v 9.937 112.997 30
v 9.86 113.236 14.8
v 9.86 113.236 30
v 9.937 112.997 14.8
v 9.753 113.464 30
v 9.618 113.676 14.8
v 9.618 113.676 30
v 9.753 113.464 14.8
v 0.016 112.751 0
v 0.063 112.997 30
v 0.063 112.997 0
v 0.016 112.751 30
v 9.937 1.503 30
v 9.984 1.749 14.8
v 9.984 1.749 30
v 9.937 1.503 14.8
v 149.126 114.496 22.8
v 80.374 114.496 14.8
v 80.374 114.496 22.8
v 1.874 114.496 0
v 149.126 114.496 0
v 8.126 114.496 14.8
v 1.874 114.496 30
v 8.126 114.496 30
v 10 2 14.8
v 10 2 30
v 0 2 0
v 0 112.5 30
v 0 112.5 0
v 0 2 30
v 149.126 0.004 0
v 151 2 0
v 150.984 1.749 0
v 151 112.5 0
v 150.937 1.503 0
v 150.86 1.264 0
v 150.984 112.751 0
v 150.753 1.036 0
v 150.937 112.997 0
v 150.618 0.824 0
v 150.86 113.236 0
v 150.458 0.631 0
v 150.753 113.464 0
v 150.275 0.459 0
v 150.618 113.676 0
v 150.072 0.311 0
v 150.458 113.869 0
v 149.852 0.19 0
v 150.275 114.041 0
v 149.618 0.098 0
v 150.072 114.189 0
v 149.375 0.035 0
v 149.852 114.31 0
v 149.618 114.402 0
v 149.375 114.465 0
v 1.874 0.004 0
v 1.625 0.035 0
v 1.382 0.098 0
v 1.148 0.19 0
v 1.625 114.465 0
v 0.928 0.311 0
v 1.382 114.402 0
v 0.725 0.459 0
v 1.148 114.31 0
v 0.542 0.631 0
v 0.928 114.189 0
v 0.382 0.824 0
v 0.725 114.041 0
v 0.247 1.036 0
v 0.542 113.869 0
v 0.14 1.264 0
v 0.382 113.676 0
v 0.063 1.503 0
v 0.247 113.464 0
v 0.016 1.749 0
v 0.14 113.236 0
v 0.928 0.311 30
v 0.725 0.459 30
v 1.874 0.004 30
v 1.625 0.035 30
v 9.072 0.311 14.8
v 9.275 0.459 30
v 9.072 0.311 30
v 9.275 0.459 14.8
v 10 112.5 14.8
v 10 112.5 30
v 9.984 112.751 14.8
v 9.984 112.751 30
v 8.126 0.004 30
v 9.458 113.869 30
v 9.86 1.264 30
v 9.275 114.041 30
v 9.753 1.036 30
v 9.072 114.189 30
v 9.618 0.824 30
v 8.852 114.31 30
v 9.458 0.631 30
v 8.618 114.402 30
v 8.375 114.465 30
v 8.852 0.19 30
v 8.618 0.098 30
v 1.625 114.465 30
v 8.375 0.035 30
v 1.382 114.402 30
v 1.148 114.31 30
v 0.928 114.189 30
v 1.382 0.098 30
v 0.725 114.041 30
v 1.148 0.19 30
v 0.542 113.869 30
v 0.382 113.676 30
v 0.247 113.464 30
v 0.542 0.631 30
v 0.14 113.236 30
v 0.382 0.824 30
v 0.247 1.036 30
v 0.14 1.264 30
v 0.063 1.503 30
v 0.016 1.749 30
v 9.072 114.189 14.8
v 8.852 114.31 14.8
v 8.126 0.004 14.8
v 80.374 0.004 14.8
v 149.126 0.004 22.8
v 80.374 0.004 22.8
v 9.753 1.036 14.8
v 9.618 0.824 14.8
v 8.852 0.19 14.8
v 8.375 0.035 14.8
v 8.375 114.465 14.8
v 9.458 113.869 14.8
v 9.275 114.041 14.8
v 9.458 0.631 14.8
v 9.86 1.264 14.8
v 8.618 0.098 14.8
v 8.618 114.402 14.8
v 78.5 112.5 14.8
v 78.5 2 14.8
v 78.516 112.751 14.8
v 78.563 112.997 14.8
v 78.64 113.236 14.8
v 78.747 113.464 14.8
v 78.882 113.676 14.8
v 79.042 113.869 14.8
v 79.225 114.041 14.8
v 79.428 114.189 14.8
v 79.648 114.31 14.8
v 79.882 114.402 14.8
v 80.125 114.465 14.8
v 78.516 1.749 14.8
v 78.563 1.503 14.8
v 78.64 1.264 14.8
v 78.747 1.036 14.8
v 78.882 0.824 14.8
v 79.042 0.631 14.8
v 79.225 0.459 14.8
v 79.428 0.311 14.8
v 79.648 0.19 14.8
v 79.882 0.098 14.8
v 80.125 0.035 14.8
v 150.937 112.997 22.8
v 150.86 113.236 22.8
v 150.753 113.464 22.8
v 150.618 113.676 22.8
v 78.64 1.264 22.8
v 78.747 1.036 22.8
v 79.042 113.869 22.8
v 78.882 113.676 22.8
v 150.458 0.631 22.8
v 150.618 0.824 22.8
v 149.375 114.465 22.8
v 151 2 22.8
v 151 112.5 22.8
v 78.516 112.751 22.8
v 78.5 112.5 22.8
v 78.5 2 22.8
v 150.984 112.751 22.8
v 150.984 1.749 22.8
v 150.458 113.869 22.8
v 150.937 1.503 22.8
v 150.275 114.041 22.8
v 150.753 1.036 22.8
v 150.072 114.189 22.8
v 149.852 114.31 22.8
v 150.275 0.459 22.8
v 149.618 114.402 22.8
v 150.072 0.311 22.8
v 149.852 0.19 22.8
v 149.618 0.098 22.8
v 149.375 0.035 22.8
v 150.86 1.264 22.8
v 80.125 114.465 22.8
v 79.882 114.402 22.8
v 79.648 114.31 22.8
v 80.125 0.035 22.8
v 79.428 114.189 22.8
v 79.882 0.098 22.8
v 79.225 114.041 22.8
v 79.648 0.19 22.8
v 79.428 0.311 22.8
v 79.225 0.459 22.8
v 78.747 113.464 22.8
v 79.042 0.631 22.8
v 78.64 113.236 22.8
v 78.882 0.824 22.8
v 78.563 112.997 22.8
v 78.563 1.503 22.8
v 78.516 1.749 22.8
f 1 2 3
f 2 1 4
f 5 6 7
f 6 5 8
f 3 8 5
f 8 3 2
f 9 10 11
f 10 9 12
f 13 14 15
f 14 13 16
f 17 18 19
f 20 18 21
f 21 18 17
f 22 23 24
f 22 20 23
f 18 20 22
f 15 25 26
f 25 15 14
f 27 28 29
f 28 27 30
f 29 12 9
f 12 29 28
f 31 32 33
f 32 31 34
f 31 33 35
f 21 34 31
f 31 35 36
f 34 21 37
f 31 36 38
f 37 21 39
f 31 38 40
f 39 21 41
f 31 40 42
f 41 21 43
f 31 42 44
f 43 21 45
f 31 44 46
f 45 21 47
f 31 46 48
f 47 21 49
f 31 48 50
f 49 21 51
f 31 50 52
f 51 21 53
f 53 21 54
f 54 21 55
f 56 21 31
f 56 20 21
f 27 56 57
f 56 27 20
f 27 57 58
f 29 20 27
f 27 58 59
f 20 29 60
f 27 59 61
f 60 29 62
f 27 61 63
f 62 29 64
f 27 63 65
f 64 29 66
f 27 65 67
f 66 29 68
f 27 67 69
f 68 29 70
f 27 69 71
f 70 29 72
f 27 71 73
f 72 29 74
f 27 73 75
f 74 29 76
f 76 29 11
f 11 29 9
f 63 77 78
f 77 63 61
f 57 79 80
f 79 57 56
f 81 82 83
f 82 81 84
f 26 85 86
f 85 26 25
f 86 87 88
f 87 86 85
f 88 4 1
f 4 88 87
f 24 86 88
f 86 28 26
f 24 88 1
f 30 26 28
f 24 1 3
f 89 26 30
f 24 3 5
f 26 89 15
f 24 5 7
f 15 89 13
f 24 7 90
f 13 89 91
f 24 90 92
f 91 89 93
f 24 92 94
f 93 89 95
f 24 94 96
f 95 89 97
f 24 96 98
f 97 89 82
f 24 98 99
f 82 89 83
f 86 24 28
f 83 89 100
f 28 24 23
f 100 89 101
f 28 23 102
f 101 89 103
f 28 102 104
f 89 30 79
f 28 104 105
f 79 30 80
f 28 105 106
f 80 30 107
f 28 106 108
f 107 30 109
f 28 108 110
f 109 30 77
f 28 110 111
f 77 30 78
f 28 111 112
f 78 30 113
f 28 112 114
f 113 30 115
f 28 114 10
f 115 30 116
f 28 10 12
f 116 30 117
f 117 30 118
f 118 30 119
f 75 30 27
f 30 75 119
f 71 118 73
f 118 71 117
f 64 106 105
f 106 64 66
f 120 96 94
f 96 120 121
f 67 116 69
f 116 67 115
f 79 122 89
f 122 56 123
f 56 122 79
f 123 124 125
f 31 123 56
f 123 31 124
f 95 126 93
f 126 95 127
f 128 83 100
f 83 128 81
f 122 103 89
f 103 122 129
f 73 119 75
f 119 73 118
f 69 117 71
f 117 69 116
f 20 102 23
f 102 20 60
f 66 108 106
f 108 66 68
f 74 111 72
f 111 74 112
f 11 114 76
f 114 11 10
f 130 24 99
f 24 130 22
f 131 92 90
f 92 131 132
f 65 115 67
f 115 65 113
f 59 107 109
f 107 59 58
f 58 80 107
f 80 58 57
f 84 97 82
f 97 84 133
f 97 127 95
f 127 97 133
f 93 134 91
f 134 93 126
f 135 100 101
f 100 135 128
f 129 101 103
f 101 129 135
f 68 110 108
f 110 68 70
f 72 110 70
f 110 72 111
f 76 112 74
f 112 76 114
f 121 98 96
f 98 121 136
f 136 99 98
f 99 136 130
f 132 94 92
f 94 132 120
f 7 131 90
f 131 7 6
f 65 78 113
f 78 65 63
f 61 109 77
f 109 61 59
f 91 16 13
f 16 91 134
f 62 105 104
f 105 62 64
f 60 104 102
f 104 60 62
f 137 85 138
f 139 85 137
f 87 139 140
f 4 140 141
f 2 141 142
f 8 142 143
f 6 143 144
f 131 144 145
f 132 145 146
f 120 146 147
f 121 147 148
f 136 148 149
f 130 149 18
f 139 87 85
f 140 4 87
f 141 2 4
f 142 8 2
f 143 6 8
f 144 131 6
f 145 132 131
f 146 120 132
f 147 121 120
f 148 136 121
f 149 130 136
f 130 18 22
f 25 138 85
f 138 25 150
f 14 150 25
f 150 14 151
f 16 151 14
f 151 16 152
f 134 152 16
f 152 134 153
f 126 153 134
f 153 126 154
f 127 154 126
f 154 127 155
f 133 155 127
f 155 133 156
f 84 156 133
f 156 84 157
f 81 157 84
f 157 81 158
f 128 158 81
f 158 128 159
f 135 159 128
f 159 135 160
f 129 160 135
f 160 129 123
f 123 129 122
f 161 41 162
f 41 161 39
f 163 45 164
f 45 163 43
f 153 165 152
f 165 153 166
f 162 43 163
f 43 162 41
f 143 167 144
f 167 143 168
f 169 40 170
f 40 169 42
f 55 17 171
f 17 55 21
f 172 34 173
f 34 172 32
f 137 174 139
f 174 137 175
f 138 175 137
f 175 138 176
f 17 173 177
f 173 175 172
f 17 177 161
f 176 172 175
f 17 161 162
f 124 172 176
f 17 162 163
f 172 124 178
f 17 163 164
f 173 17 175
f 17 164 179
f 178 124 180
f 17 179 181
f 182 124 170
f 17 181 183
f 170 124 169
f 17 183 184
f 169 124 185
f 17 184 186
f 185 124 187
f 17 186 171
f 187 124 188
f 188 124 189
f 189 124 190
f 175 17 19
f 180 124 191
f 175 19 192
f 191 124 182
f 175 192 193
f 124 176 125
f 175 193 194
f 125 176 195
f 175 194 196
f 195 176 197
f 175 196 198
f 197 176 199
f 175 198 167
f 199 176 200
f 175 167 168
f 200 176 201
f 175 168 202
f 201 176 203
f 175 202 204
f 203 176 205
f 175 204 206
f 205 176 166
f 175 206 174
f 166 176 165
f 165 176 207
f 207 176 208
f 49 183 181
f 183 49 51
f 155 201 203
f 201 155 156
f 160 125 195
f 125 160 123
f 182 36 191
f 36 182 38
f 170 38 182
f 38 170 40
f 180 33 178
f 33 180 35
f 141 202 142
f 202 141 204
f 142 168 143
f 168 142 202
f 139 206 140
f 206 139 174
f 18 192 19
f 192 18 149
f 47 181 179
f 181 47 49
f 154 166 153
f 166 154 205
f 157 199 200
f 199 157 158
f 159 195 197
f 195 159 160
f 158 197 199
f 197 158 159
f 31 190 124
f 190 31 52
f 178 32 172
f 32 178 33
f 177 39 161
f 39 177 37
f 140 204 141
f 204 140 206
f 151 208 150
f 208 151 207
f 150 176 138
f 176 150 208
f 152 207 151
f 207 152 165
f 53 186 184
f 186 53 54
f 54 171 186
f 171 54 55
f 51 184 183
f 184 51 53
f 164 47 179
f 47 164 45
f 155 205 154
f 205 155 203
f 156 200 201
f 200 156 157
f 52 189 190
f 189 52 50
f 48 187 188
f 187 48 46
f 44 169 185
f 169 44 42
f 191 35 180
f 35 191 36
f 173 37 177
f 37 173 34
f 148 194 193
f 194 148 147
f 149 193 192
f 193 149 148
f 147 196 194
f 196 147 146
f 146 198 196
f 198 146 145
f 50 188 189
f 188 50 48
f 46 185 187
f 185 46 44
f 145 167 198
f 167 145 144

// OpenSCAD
// file: ../../lib/config/constants.scad
// Shared constants reflect things that are true for the whole model not just a single component.
// They should by definition be required by multiple components.
$fn = 10;

$abs_filament = false;

$wall_thickness = 2;
$wall_rect = [$wall_thickness, $wall_thickness];
$inner_wall_thickness = 1;

$bleed = 0.01;

$padding = 0.5;
$padding_rect = [$padding * 2, $padding * 2];

$card_padding = 1.5;

$inset = 6;
$cutout_fraction = 0.6;

$rounding = 3;

// TODO are both needed?
$lid_height = 2;
$cutout_lid_height = 2;

$trapezoid_inset = 1;
// file: ../../lib/primitive/rounded_square.scad
include <../config/constants.scad>

module rounded_square(size, flat_top=false, flat_bottom=false) {
  assert(!(flat_top && flat_bottom), "Flat top and flat bottom are exclusive");

  rounding_height = flat_top || flat_bottom 
    ? $rounding 
    : $rounding * 2;

  offset = flat_bottom ? 0 : $rounding;

  inner_size = [
    size[0] - $rounding * 2,
    size[1] - rounding_height,
  ];

  minkowski() {
    translate([$rounding, offset]) {
      square(inner_size);
    }
    if (flat_top ) {
      difference() {
        circle($rounding);
        translate([-$rounding, 0]) {
          square([$rounding * 2, $rounding]);
        }
      }
    } else if (flat_bottom) {
      difference() {
        circle($rounding);
        translate([-$rounding, -$rounding]) {
          square([$rounding * 2, $rounding]);
        }
      }
    } else {
      circle($rounding);
    }
  }
}
// file: ../../lib/layout/layout.scad
include <../config/constants.scad>

function stack_height (size, count=1) = size * count + $padding;

function padded_offset (length, index=1) = (length + $padding * 2 + $wall_thickness) * index;

function offset (size, index=1) = (size + $wall_thickness) * index;

function pad (size) = size + $padding * 2;

function divide_rect(rect, operand) = [rect[0] / operand, rect[1] / operand];
function multiply_rect(rect, operand) = [rect[0] * operand, rect[1] * operand];

function divide_cube(rect, operand) = [rect[0] / operand, rect[1] / operand, rec[2] / operand];
function multiply_cube(rect, operand) = [rect[0] * operand, rect[1] * operand, rect[2] * operand];

function offset_centre_in_box(size, bounding_box) = divide_rect(bounding_box - size, 2);

module offset_cylinder(d, h) {
  translate([d / 2, d / 2, 0]) {
    cylinder(d=d, h=h);
  }
}

module offset_circle(d) {
  translate([d / 2, d / 2, 0]) {
    circle(d=d);
  }
}

module offset_square(size, center=false) {
  translate([size[0] / 2, size[1] / 2, 0]) {
    square(size, center=center);
  }
}
// file: ../../lib/primitive/rounded_cube.scad
include <./rounded_square.scad>
include <../config/constants.scad>

// Render a rounded cube
// flat_top: do not round the top edges
// flat_bottom: do not round the bottom edges
// flat: equals flat_top && flat_bottom
// 
// Limitations:
// requires height > $rounding * 2
// flat_top || flat_bottom requires height > $rounding
// flat_top && flat_bottom requires height > $bleed
module rounded_cube(
  size, 
  flat=false, 
  flat_top=false, 
  flat_bottom=false,
  side_rounding=-1
) {
  _flat = flat || (flat_top && flat_bottom);
  _flat_top = flat_top || flat;
  _flat_bottom = flat_bottom || flat;
  _rounding = min($rounding, size[2] / 2);
  _side_rounding = side_rounding > -1 ? side_rounding: $rounding;

  assert(_side_rounding >= $rounding, "side rounding cannot be less than rounding");

  top_height = _flat_top ? 0: _rounding;
  bottom_height = _flat_bottom ? 0: _rounding;

  cube_size = [
    size[0] - _rounding * 2,
    size[1] - _rounding * 2,
    size[2] - (top_height + bottom_height)
  ];

  if (_flat_top && _flat_bottom) {
     linear_extrude(cube_size[2]) {
       rounded_square([size[0], size[1]]);
     }
   } else {
     minkowski() {
       translate([_rounding, _rounding, bottom_height]) {
         if (_side_rounding != _rounding) {
           linear_extrude(cube_size[2]) {
             rounded_square([cube_size[0], cube_size[1]], $rounding=_side_rounding);
           }
         } else {
           cube(cube_size);
         }
       }

       if (_flat_top) {
         difference() {
           sphere(_rounding);
           cylinder(_rounding, _rounding, _rounding);
         }
       } else if (_flat_bottom) {
         difference() {
           sphere(_rounding);
           translate ([0, 0, -_rounding]) {
             cylinder(_rounding, _rounding, _rounding);
           }
         }
       } else {
         sphere(_rounding);
       }
    }
  }
}
// main file
include <../../lib/primitive/rounded_cube.scad>
include <../../lib/layout/layout.scad>

$fn = 50;
$rounding = 2;

space_length = 151;
space_width = 114.5;

mid_length = 68.5;
mid_width = space_width;
mid_height = 14.8;

right_length = 72.5;
right_width = space_width;
right_height = 22.8;

left_length = space_length - mid_length - right_length;
left_width = space_width;
left_height = 30;

union() {
  rounded_cube([left_length, left_width, left_height], flat=true, $rounding=2);

  translate([left_length - $rounding * 2, 0, 0]) {
    rounded_cube([mid_length + $rounding * 4, mid_width, mid_height], flat=true, $rounding=2);
  }

  translate([left_length + mid_length, 0, 0]) {
    rounded_cube([right_length, right_width, right_height], flat=true, $rounding=2);
  }
}
